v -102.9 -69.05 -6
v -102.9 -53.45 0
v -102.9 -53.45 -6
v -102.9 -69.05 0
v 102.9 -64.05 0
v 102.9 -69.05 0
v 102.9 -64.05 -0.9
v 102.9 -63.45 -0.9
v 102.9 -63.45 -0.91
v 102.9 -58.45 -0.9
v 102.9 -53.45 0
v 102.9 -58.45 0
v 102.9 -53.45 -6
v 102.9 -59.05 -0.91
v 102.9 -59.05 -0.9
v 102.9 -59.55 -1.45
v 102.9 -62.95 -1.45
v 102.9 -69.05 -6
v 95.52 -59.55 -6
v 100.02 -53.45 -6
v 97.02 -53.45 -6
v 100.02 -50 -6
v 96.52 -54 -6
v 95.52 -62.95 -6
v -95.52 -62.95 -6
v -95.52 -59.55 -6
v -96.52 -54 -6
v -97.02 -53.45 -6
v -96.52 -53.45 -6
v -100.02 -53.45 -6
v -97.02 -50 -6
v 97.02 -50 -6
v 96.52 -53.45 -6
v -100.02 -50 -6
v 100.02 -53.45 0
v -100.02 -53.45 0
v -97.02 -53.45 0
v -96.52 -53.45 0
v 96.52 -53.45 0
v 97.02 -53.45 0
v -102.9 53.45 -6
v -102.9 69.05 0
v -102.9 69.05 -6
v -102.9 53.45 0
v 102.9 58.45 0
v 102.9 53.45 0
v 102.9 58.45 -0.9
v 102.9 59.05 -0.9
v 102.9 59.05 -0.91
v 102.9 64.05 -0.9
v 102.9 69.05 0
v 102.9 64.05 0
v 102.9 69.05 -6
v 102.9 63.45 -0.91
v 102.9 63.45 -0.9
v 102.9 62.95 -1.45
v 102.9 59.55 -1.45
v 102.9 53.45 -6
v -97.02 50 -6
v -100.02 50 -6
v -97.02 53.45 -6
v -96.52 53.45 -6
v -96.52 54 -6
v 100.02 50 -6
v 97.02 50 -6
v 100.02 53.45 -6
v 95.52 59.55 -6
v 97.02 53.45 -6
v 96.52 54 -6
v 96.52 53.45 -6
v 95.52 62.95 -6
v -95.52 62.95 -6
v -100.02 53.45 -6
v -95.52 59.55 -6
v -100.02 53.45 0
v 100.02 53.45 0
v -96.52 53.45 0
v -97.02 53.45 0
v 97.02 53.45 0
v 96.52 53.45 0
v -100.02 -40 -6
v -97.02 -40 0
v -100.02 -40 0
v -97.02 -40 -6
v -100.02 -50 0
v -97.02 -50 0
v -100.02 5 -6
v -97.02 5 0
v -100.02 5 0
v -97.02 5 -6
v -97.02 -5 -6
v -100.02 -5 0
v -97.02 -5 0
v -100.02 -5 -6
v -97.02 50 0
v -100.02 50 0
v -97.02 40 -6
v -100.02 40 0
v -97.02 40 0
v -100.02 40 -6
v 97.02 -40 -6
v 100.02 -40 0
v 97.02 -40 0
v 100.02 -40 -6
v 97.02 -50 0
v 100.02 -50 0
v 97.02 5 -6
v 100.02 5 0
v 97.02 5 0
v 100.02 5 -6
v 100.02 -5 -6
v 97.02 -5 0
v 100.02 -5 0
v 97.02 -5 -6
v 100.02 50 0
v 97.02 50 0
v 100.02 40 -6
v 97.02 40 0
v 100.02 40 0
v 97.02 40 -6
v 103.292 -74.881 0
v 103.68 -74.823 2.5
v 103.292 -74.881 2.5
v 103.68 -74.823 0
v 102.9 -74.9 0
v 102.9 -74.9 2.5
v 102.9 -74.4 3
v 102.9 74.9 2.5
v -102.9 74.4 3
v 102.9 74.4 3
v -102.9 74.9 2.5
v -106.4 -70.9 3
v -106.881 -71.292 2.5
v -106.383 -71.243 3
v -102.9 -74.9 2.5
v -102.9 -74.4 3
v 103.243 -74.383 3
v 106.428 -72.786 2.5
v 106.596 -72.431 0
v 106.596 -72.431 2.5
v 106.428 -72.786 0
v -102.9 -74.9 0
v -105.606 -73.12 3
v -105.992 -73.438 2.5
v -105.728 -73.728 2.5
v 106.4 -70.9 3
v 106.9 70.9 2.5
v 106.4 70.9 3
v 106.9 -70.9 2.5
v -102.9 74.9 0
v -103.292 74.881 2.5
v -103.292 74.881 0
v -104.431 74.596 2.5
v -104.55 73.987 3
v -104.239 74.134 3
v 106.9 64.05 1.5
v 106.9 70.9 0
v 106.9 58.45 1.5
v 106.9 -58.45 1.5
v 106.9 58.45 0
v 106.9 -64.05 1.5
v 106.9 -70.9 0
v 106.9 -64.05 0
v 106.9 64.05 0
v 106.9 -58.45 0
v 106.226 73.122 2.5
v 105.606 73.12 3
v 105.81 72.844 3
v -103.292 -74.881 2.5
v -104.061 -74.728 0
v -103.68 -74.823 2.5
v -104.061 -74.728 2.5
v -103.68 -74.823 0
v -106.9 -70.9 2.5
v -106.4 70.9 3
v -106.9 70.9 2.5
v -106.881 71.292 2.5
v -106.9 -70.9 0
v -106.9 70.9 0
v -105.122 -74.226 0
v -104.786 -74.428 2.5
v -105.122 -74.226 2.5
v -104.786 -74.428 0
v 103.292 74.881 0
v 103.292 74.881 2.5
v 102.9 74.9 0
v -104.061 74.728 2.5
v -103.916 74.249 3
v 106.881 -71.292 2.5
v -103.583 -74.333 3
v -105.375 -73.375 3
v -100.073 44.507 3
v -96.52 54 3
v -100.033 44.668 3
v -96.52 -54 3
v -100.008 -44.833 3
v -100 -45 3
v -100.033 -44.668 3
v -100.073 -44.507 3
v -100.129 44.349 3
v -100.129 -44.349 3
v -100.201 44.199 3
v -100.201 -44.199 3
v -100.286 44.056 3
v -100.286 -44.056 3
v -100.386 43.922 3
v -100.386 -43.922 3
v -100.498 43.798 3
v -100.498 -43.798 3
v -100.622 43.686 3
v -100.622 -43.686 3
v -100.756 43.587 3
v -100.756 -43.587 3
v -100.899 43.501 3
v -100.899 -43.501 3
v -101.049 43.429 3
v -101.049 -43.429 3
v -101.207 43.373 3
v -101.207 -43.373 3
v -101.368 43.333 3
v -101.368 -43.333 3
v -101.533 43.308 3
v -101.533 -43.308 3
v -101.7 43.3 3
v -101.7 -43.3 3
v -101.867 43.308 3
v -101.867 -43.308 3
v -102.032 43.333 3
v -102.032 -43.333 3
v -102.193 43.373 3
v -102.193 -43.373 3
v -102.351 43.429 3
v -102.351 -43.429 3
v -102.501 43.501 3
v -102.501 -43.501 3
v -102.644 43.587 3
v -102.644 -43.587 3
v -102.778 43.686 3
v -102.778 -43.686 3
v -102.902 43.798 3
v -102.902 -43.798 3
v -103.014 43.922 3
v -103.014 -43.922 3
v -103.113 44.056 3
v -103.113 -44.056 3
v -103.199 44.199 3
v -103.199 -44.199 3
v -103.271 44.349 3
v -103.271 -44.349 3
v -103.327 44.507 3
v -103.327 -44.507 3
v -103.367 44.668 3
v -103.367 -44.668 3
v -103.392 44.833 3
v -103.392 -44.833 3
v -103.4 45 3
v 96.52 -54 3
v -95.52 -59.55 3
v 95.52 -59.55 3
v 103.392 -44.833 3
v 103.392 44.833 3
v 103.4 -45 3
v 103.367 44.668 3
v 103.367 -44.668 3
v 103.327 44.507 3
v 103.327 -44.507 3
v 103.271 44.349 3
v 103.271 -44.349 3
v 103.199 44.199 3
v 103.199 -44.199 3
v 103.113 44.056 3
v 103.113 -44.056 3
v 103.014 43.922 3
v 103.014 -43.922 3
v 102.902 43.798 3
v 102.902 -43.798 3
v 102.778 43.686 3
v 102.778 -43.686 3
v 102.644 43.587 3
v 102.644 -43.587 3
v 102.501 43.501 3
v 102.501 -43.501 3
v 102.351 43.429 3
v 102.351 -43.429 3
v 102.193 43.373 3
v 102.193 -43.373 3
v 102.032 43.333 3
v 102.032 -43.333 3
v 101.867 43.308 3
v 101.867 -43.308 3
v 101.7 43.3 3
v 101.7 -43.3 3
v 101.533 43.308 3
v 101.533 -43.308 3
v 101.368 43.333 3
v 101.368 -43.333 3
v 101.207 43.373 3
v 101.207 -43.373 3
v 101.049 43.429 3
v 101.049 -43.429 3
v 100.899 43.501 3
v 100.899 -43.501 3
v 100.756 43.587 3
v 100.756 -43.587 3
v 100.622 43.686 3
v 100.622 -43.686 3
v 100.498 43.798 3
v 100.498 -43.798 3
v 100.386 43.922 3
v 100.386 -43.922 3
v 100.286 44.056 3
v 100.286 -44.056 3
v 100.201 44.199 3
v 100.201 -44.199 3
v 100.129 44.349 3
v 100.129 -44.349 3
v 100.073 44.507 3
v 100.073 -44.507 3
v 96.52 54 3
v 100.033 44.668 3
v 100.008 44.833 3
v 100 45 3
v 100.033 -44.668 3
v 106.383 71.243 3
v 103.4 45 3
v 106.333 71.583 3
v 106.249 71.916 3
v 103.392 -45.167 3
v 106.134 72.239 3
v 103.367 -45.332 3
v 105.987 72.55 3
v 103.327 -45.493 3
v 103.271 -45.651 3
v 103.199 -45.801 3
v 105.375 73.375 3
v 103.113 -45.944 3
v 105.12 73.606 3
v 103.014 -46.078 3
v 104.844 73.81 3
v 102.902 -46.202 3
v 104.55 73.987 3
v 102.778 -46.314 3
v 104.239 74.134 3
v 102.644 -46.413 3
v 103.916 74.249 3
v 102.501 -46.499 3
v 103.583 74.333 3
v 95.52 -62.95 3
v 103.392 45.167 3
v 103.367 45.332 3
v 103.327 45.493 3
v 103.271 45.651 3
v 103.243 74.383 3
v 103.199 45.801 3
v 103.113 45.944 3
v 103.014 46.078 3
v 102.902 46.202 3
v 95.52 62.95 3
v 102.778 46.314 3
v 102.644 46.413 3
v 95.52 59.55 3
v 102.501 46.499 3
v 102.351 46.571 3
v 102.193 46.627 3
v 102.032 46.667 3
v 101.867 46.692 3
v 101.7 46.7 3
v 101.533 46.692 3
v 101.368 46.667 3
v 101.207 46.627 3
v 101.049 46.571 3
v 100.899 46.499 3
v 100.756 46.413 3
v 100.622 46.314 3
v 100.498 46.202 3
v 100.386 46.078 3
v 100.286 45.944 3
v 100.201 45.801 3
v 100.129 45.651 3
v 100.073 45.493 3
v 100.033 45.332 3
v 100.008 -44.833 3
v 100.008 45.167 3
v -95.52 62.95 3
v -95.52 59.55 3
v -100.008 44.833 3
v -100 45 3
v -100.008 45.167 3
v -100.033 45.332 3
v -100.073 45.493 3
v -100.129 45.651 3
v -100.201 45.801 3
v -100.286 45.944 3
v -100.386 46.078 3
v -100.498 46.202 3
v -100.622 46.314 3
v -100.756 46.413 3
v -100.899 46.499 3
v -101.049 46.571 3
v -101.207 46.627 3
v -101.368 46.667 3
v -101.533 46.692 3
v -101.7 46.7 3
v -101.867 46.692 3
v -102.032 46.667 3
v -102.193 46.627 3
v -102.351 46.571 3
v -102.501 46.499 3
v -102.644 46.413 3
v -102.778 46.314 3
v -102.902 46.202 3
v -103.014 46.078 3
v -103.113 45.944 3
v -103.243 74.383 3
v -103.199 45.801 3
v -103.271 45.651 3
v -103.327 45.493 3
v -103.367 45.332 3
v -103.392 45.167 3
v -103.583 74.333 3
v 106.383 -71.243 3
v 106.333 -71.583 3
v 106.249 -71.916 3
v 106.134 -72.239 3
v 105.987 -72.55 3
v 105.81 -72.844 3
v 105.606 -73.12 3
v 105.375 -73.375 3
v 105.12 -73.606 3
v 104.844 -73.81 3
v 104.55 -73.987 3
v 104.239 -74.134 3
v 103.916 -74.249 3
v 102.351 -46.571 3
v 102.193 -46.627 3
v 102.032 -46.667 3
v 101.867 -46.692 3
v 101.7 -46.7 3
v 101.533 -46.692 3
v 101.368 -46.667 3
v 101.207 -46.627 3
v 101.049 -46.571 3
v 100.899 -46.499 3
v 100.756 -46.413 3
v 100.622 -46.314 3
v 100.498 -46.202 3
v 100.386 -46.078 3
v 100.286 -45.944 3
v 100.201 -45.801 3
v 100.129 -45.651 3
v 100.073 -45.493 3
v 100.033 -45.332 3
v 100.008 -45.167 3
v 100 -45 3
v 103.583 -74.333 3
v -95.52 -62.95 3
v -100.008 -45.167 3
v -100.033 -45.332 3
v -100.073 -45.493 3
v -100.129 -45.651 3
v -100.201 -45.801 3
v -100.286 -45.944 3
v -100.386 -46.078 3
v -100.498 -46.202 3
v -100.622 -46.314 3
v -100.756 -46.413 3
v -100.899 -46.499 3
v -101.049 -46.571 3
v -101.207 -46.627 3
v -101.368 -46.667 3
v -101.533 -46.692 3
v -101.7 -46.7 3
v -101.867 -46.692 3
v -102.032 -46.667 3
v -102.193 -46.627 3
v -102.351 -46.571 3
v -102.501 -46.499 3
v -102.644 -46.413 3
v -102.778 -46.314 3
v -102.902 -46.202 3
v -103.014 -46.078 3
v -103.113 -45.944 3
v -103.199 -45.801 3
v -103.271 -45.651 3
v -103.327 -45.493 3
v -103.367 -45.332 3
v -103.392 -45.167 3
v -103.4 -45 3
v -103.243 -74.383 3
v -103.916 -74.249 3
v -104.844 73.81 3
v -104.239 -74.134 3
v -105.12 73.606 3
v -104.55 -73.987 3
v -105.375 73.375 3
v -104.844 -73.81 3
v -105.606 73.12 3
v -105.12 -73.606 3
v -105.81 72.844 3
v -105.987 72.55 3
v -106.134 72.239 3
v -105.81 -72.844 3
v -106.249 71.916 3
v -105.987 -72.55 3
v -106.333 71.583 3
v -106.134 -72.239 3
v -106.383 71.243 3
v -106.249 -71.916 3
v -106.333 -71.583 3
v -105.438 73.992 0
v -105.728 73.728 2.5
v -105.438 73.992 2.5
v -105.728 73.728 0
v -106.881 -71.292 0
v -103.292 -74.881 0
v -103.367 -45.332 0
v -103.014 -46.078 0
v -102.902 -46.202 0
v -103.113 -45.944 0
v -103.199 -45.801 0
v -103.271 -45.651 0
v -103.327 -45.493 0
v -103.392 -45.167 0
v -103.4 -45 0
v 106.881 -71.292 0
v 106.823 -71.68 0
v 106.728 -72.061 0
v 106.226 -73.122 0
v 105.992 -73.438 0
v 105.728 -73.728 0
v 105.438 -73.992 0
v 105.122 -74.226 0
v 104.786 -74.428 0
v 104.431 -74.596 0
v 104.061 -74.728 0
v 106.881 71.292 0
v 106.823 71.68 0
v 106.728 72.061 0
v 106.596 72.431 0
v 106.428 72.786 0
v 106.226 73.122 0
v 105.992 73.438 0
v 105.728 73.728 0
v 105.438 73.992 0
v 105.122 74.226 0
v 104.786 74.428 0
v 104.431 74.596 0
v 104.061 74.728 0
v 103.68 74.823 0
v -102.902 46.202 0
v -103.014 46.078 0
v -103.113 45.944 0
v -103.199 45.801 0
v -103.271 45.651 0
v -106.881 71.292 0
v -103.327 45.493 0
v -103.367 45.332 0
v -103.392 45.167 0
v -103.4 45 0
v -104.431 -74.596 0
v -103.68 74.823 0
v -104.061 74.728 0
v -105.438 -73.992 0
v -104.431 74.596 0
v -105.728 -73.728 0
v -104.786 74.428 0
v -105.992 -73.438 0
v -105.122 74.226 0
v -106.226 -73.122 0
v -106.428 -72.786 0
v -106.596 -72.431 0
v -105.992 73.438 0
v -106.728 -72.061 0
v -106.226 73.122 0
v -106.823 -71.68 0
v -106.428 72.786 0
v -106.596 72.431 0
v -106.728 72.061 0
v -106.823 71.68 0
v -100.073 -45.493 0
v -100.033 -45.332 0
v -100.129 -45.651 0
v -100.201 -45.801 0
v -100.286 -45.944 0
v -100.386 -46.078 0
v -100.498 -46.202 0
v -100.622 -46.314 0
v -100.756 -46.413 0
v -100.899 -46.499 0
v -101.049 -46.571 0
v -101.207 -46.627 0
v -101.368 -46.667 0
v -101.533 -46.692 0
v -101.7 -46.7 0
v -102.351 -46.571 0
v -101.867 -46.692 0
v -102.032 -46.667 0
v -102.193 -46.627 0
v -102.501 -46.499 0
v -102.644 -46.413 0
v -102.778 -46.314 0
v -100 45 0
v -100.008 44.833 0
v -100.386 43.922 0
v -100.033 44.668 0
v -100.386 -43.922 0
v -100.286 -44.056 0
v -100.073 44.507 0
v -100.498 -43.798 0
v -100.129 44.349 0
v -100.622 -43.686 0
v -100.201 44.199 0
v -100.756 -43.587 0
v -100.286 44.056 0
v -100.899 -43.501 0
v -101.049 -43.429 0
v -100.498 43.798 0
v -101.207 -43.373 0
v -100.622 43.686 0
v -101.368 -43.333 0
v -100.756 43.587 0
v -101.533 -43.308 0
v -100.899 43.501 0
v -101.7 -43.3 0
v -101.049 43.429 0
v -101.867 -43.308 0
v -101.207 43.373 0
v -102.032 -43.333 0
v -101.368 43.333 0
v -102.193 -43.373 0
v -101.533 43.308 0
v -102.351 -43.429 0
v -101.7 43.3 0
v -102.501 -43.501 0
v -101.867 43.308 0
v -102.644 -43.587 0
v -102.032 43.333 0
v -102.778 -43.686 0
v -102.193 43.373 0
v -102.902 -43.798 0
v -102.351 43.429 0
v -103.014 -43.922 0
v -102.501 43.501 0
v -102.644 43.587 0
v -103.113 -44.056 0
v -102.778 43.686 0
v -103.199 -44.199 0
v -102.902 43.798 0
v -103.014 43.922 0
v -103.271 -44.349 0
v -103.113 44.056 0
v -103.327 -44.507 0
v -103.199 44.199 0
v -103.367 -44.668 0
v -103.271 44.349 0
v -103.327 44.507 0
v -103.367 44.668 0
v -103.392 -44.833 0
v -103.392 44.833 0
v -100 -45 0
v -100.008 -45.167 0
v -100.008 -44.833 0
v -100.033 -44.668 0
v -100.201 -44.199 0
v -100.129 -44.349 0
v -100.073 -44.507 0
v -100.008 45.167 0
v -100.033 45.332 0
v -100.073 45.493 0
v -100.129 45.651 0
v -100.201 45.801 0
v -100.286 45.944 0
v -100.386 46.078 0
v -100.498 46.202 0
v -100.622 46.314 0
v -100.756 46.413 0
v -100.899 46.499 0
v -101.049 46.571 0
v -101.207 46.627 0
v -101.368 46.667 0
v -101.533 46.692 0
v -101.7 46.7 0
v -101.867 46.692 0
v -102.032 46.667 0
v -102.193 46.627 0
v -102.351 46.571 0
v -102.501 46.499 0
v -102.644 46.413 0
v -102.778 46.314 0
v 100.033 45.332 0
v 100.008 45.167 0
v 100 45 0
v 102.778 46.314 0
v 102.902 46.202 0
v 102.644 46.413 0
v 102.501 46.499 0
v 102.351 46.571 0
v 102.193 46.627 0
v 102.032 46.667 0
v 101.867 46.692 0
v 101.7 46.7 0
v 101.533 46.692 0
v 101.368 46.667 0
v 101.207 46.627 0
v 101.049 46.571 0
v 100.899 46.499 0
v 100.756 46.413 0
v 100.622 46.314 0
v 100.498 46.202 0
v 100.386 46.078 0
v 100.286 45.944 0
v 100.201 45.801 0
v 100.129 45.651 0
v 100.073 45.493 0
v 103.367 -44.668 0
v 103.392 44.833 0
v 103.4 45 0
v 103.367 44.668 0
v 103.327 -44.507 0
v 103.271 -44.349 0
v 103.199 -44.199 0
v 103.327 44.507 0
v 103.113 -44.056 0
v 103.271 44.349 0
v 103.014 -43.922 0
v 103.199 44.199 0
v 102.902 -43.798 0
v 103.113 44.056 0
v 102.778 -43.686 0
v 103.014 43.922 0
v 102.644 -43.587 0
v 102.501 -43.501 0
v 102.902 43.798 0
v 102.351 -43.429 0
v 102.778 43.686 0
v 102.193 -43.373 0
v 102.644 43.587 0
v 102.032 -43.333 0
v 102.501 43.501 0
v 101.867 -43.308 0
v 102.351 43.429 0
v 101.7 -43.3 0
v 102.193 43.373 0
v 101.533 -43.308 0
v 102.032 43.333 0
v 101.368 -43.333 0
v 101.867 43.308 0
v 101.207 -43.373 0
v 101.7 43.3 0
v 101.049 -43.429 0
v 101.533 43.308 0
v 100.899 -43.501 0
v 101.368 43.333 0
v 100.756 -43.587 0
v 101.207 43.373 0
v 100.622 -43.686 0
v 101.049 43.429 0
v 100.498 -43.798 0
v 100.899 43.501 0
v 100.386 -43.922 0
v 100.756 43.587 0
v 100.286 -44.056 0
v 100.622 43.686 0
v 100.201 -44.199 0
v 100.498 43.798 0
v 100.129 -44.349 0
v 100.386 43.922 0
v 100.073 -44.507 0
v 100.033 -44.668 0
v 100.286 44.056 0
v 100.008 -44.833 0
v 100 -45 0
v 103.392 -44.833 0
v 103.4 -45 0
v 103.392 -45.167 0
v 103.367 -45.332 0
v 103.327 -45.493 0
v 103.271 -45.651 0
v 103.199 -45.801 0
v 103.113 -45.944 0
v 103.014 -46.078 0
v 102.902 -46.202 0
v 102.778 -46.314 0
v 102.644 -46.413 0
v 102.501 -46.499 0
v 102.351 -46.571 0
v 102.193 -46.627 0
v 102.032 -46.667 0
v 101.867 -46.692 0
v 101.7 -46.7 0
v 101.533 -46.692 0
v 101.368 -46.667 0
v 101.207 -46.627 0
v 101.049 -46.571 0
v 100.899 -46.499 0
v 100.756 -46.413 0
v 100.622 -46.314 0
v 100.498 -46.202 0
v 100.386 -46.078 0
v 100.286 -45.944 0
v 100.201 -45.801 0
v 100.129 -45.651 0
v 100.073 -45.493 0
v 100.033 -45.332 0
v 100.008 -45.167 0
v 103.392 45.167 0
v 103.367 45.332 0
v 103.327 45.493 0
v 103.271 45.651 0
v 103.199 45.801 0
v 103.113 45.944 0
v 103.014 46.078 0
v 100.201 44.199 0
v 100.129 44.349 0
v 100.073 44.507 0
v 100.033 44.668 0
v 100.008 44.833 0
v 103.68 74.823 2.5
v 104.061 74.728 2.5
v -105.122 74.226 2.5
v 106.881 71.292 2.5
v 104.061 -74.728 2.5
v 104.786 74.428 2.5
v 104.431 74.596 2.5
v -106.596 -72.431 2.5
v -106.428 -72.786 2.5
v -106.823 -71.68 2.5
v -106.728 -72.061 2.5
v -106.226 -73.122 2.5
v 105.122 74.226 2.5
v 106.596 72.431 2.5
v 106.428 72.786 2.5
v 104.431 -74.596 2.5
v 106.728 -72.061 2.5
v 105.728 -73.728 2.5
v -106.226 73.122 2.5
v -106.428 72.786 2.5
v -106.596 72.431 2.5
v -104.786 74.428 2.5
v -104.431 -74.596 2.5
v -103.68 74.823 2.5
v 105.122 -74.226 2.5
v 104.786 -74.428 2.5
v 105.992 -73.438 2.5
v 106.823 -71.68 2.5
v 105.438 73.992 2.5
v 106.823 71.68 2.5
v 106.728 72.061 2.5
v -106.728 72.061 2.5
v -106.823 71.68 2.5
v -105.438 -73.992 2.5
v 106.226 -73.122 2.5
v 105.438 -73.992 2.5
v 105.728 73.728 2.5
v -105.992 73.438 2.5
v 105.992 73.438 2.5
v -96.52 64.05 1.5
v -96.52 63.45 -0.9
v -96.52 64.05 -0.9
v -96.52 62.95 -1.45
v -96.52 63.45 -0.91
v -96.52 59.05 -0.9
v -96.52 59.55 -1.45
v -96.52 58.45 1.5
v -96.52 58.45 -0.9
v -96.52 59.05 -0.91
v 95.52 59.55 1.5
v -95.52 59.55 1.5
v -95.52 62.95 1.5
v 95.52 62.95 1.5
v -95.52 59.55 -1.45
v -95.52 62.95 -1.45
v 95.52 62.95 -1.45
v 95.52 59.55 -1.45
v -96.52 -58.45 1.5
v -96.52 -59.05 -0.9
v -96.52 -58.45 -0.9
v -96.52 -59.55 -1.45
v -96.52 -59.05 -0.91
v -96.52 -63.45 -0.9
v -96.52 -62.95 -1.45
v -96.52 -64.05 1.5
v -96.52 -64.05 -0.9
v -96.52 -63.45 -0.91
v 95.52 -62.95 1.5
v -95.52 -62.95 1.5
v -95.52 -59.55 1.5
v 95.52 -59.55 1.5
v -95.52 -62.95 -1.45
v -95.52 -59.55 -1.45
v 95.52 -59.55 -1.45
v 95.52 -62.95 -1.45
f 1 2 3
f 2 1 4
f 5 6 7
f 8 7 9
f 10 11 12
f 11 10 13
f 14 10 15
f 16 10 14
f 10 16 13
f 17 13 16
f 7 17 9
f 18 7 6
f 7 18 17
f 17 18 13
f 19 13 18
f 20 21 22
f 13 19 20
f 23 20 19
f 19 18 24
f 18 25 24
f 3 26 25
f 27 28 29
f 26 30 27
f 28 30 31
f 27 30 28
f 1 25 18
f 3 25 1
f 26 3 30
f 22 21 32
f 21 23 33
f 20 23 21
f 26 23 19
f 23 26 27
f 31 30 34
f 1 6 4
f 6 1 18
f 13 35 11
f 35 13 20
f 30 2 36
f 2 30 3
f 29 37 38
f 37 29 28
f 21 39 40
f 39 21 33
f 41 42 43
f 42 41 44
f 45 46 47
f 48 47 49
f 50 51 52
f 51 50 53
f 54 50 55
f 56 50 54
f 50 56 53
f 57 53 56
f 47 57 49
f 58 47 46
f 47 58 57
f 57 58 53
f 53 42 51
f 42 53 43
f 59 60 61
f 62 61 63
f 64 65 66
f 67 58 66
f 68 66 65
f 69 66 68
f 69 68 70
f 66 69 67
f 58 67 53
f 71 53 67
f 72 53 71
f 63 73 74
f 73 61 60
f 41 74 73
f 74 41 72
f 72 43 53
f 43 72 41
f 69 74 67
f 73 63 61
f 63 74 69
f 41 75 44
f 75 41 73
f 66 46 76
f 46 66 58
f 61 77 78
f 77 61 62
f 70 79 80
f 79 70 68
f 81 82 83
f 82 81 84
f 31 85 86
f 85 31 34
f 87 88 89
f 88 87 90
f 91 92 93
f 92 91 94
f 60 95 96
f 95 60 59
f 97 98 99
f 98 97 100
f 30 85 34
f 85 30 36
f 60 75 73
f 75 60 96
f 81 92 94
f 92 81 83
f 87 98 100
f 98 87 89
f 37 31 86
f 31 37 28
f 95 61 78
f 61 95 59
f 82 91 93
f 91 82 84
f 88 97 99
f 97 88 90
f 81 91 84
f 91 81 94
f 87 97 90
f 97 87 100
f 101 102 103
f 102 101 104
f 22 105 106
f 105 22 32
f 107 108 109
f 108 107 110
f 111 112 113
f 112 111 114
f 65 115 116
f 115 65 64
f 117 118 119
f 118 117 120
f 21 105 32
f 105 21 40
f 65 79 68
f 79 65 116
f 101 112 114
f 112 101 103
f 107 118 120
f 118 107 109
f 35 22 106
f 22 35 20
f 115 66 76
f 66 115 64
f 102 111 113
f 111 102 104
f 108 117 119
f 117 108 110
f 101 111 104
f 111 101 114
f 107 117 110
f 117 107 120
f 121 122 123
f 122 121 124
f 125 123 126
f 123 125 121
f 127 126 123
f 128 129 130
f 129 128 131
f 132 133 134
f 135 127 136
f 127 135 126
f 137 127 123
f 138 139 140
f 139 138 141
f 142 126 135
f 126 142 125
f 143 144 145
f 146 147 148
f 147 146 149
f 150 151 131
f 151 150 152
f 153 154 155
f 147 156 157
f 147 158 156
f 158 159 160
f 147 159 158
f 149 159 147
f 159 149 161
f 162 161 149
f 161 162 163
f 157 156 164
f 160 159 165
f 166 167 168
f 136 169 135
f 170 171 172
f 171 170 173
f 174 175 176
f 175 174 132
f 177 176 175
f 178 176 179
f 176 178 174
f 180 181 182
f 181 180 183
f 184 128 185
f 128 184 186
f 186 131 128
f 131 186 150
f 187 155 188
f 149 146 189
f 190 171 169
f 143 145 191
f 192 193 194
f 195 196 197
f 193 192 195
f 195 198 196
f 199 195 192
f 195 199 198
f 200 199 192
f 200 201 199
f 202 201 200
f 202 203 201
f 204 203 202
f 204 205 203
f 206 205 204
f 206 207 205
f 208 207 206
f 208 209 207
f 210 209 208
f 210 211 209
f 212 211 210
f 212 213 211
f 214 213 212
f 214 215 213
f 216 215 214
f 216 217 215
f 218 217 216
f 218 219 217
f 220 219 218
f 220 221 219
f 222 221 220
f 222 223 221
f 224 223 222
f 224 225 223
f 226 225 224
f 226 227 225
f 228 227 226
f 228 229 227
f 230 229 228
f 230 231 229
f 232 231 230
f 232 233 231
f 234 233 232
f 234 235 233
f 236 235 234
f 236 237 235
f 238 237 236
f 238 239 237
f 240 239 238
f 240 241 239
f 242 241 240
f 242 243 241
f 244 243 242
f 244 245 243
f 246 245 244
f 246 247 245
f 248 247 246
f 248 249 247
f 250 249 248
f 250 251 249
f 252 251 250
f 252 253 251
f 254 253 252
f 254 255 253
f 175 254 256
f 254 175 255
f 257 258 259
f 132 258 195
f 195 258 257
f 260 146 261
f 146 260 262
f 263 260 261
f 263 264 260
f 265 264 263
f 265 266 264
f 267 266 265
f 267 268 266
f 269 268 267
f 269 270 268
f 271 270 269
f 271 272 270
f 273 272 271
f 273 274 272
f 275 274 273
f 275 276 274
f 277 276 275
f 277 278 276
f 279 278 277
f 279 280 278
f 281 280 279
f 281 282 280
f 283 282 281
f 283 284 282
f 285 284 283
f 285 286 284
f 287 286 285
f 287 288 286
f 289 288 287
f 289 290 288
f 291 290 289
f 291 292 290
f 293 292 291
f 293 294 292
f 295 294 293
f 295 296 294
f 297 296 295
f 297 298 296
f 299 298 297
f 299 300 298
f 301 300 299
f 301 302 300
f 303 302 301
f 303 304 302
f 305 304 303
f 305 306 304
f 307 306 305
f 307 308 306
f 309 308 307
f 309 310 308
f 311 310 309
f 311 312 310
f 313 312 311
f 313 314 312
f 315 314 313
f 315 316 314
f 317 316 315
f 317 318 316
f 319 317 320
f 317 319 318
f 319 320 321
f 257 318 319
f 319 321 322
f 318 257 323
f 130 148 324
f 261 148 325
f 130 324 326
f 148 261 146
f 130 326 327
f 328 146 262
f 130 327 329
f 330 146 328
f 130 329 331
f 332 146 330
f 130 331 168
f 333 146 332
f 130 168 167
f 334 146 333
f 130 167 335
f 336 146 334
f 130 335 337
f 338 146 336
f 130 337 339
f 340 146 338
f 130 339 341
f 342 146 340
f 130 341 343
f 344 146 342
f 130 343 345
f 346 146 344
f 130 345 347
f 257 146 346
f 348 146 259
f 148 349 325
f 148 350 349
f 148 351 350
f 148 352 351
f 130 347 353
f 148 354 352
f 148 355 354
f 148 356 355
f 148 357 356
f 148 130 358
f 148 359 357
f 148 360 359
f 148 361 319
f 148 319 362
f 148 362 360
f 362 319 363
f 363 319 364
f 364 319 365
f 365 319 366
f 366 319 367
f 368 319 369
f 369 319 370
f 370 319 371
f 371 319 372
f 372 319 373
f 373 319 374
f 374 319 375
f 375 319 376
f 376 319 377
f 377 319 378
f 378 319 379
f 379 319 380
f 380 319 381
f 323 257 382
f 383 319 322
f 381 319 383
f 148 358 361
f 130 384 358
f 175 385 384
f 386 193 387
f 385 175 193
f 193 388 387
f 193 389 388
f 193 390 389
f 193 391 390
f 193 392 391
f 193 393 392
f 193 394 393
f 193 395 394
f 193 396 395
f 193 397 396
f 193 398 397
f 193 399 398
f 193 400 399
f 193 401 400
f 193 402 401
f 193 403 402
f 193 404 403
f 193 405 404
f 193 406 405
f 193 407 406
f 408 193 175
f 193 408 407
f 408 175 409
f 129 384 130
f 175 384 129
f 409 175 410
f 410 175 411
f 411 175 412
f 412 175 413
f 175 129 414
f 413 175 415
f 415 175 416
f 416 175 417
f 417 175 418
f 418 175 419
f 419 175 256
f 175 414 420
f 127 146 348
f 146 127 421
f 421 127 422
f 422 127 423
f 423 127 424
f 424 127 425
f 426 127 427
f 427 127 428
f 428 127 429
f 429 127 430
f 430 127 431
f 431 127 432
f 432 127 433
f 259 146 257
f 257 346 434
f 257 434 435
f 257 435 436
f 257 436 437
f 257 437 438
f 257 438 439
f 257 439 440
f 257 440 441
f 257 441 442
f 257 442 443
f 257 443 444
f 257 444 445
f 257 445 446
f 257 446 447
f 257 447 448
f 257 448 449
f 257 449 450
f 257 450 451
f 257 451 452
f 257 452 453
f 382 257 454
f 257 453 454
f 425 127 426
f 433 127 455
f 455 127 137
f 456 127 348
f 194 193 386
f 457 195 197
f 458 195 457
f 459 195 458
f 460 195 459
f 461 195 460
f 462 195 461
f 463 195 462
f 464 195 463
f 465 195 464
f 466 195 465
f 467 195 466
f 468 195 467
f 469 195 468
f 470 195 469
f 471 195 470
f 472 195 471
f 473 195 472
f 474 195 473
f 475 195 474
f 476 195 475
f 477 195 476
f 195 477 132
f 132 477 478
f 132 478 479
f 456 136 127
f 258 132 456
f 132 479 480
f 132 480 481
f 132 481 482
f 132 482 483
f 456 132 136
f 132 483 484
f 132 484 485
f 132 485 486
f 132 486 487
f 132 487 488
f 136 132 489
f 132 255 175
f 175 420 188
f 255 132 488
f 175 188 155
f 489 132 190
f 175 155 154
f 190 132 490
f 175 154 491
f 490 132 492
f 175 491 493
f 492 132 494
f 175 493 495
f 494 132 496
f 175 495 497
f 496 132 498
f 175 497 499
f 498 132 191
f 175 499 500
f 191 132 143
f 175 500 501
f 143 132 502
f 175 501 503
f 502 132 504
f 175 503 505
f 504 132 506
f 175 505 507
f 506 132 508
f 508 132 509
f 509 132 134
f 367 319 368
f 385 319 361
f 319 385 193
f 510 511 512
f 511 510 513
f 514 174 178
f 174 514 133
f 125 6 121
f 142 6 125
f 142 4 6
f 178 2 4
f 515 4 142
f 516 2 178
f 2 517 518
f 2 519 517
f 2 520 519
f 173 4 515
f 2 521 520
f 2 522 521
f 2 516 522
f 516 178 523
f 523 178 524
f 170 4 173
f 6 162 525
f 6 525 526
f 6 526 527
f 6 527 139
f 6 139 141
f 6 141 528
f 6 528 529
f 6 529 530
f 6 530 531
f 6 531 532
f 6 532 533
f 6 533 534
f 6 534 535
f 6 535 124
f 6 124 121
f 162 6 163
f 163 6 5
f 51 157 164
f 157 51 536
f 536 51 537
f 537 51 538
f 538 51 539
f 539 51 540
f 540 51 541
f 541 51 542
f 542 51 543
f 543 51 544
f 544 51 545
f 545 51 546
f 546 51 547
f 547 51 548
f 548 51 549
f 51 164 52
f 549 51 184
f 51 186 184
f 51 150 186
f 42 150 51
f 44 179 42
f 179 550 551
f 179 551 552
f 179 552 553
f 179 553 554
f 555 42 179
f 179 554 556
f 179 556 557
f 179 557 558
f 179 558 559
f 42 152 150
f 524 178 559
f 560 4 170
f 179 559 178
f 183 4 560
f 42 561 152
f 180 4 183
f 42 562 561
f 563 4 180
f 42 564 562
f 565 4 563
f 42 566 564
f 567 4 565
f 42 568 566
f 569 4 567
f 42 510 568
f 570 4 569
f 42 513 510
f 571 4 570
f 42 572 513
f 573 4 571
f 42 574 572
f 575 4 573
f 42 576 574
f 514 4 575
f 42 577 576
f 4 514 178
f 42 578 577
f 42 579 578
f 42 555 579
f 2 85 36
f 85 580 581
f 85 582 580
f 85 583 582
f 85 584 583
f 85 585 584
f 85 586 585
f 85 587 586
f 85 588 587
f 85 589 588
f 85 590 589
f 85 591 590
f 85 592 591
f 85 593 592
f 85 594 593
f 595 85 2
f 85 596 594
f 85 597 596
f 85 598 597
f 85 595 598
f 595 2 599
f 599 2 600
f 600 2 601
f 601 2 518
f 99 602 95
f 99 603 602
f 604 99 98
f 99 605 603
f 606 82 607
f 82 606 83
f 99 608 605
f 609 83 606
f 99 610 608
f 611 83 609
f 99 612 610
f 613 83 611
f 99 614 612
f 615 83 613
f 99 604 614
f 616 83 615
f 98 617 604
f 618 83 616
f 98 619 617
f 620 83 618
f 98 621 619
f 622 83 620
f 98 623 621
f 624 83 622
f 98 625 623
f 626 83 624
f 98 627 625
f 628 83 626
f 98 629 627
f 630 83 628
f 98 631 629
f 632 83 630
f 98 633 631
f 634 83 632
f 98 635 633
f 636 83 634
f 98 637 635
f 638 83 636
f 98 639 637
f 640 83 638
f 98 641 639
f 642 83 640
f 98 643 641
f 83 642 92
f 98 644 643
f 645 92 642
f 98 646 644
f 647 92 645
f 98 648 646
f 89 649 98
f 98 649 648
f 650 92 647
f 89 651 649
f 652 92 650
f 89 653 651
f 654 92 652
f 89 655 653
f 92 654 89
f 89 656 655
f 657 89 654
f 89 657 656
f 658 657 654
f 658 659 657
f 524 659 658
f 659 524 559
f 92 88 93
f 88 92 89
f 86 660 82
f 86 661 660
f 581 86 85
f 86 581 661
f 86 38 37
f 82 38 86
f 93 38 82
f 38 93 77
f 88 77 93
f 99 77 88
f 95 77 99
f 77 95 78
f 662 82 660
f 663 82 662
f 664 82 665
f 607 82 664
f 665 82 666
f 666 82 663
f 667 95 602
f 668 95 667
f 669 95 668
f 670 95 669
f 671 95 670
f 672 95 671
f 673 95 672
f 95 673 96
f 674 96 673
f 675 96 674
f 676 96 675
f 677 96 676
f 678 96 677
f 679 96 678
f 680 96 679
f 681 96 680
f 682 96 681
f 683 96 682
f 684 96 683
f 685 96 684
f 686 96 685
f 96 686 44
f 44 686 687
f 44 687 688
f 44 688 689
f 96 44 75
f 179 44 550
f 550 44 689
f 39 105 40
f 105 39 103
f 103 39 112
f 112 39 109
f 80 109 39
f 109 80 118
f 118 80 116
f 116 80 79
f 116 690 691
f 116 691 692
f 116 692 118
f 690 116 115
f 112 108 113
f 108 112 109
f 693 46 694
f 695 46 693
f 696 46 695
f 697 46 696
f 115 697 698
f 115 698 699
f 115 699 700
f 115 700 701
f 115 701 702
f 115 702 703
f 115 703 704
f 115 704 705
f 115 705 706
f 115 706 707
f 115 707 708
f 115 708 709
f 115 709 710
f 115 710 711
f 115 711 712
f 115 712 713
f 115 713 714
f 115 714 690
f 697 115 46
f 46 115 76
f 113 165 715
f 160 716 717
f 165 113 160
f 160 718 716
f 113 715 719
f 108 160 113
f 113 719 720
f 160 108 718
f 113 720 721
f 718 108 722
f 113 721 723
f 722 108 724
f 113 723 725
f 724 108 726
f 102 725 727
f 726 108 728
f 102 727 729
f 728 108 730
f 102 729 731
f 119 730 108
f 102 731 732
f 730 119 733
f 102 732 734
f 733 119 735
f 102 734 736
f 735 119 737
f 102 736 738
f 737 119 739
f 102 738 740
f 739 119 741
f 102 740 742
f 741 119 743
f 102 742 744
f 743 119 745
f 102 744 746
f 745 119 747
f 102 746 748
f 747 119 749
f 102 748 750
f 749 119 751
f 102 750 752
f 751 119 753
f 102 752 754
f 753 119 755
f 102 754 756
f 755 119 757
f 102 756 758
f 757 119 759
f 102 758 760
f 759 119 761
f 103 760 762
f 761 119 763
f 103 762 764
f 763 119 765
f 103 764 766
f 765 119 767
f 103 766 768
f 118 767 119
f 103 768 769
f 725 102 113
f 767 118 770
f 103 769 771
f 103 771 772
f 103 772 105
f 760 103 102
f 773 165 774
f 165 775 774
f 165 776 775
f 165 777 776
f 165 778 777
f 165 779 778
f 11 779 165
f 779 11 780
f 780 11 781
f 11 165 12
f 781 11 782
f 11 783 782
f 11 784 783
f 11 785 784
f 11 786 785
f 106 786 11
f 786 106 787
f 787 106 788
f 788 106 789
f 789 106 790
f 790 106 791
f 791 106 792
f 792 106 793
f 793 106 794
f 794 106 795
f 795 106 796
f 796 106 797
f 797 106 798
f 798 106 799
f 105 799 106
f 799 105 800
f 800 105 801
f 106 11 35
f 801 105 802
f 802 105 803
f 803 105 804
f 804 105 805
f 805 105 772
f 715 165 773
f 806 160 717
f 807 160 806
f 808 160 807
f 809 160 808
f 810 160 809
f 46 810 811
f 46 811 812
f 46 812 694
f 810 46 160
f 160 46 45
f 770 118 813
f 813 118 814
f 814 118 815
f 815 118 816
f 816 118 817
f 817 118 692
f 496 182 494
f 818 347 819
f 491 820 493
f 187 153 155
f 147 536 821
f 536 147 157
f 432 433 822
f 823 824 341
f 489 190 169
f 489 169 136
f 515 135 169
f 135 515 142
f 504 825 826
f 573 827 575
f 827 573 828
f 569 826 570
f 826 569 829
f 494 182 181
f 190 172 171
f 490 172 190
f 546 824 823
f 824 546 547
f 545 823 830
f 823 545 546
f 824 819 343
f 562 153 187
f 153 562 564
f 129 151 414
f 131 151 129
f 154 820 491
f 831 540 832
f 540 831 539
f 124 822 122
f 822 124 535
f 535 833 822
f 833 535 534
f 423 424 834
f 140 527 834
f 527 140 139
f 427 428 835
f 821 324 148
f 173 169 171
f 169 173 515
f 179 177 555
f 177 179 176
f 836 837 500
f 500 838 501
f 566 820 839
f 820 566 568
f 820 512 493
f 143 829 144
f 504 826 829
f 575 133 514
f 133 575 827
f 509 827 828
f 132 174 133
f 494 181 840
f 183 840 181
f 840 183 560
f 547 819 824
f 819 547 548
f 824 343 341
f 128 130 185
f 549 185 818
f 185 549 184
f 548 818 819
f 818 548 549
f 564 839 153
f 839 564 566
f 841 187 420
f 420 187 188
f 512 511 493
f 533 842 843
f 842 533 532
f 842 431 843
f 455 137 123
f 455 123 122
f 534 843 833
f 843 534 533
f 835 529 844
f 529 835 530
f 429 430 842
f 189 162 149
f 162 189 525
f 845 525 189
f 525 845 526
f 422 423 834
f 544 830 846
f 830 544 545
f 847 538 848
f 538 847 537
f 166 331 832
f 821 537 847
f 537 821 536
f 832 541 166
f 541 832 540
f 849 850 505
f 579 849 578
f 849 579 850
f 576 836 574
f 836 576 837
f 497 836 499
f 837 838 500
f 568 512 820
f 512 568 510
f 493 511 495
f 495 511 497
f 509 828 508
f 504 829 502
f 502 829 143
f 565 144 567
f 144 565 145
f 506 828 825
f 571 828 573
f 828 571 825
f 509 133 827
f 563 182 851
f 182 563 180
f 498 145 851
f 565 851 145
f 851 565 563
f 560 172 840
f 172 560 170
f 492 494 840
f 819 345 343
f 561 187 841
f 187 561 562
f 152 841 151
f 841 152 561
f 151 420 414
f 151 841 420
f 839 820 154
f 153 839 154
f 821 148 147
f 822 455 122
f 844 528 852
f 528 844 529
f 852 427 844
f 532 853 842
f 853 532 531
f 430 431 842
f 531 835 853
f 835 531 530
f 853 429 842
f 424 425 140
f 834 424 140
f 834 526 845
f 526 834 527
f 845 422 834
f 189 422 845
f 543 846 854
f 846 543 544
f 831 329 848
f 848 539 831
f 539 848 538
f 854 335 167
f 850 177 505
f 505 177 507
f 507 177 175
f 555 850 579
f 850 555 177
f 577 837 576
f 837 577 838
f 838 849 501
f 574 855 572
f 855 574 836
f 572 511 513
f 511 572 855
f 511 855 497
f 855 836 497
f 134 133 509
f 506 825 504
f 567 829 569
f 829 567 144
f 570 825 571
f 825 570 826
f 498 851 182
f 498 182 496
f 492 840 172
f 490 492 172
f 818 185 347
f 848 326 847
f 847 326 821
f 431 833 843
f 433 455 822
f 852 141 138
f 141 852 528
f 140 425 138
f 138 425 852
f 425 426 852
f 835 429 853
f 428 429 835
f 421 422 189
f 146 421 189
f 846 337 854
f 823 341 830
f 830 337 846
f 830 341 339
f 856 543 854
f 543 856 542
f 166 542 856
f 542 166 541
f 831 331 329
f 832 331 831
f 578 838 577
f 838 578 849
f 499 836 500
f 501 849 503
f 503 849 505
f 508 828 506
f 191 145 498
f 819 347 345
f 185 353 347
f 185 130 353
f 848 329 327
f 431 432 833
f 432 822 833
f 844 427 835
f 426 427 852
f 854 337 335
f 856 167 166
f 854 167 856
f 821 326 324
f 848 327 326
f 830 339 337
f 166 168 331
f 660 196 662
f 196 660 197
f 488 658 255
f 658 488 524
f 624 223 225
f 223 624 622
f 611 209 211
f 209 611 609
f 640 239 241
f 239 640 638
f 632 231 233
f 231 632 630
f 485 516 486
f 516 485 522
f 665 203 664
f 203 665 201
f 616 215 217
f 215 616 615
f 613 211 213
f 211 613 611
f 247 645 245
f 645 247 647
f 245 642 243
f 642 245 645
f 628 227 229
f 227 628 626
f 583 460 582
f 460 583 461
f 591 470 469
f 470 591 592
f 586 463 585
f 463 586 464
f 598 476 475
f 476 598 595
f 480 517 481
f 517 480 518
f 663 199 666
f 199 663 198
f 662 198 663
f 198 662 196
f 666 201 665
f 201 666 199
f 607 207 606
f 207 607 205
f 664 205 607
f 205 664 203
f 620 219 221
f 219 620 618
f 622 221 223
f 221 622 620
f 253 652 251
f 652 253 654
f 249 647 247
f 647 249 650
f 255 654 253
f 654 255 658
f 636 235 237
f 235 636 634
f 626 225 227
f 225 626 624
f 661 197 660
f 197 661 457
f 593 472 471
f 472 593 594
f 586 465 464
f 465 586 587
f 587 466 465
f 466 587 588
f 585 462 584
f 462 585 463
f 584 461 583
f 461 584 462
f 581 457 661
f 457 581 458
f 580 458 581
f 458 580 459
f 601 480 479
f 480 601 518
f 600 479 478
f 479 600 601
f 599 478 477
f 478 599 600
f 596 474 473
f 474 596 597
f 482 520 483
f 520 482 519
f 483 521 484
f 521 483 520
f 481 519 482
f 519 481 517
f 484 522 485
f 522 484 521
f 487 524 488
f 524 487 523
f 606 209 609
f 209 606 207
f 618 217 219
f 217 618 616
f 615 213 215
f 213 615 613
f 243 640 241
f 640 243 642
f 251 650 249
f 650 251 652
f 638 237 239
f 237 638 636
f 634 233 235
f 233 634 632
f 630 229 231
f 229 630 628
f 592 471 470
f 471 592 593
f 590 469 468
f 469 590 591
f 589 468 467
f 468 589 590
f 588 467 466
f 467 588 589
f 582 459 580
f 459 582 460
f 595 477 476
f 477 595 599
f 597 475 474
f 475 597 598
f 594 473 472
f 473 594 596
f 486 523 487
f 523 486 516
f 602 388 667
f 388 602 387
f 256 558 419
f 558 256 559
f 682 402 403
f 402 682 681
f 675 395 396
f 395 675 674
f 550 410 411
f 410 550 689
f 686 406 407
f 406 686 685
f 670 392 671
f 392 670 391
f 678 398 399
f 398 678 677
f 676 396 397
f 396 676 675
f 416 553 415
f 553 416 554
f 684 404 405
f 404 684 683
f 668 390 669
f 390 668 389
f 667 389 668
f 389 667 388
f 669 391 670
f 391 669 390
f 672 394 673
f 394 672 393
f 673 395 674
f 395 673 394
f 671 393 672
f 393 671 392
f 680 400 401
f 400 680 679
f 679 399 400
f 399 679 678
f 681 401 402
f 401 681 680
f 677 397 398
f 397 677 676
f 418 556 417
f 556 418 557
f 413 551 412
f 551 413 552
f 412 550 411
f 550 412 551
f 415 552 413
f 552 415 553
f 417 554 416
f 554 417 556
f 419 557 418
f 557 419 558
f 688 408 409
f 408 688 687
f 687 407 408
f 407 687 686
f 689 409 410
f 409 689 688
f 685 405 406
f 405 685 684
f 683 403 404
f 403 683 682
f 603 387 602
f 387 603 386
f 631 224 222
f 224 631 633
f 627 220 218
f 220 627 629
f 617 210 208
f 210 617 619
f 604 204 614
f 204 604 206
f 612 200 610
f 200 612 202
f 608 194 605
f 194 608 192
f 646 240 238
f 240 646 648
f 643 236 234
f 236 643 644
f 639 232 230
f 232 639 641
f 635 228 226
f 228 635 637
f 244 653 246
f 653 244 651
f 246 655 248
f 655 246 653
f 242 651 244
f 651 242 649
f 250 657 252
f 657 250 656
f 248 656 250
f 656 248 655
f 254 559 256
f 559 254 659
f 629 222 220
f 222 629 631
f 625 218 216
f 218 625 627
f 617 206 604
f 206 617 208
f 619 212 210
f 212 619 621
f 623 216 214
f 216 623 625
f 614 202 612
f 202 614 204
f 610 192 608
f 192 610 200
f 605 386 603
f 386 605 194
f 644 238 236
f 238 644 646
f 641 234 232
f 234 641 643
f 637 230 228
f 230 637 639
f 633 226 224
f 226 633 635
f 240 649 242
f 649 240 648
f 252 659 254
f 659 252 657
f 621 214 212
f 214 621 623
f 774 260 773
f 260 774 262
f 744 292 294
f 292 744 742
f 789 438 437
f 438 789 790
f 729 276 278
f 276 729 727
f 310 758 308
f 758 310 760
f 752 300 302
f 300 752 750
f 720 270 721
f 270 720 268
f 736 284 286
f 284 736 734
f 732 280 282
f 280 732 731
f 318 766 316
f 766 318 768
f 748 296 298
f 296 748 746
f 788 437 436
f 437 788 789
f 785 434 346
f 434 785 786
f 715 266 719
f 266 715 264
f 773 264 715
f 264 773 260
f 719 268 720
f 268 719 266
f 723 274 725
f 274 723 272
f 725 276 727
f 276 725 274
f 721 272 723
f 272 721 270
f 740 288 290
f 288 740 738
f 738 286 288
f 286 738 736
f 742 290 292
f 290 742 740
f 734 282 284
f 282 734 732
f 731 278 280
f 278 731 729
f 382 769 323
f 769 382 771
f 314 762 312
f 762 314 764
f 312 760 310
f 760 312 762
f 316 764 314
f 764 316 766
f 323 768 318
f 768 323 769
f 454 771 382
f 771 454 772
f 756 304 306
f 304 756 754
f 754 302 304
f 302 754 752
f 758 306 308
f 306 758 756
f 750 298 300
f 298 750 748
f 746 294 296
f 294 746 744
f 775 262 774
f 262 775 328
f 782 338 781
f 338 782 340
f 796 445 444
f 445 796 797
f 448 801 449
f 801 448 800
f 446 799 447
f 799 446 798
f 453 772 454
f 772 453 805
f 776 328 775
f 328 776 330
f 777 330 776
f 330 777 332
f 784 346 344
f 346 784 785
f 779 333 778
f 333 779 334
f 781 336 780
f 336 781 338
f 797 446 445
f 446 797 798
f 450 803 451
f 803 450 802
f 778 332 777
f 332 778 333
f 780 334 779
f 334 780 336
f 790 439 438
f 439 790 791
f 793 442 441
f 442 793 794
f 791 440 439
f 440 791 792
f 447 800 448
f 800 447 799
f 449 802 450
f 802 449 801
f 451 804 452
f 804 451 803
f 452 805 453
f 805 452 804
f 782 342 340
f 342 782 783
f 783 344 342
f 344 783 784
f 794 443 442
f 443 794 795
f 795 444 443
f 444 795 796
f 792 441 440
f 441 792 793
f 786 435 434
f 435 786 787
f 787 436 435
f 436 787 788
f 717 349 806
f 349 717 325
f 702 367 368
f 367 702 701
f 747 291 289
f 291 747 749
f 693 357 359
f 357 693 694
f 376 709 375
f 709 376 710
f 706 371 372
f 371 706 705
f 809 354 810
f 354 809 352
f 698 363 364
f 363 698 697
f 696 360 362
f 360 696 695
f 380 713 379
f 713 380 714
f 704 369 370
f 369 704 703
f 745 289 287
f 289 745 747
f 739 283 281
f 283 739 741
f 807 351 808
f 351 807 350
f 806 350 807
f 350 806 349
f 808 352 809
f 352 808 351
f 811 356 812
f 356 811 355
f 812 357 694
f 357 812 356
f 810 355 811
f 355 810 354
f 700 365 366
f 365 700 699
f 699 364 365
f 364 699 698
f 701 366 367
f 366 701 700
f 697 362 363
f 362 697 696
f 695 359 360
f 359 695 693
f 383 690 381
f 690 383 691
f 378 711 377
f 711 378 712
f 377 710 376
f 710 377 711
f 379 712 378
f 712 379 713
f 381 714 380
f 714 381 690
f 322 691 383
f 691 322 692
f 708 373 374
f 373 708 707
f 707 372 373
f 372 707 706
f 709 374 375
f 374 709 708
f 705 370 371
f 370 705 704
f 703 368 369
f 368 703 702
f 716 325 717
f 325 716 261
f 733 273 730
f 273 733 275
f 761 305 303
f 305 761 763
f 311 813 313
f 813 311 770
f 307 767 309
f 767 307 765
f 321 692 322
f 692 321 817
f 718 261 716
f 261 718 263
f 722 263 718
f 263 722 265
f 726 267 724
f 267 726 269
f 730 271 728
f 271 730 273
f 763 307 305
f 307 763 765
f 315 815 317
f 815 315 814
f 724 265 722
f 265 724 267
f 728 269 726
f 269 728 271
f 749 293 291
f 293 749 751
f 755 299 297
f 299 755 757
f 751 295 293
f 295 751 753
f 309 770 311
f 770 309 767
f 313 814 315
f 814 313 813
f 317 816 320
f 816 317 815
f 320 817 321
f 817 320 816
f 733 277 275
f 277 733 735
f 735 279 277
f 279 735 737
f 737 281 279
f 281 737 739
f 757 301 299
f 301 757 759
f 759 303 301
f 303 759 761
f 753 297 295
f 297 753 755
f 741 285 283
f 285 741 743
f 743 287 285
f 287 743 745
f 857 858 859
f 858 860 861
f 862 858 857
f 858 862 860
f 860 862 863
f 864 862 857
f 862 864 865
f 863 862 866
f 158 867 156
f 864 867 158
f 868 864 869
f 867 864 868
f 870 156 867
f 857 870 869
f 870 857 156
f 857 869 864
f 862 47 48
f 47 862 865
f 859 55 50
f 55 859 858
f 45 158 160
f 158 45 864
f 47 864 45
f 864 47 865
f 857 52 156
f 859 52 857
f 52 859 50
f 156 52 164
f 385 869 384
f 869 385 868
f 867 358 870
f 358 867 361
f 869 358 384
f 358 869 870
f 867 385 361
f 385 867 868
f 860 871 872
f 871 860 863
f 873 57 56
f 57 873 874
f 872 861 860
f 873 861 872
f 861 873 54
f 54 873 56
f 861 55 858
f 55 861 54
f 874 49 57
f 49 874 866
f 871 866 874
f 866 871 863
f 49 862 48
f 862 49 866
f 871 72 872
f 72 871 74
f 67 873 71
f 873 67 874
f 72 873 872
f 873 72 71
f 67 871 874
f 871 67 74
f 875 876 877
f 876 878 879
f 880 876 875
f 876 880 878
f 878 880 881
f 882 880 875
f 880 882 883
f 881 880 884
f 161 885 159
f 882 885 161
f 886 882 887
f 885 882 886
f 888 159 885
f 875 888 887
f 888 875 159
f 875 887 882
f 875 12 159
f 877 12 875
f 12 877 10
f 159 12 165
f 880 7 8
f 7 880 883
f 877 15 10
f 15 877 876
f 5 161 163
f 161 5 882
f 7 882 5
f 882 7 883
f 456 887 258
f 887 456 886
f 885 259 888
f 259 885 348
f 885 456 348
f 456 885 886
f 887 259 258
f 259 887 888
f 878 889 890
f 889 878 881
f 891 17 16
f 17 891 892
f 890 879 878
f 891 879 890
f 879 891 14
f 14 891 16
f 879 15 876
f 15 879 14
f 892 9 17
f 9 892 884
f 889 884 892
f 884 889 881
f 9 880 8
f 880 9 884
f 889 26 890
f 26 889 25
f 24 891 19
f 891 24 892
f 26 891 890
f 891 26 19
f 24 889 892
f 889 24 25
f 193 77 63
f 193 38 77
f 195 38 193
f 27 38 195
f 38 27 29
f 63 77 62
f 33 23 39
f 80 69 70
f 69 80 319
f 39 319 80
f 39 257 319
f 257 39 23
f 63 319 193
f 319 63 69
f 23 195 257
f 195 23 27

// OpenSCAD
// Apache 2800 Eurorack Plate
// Copyright (c) 2026 William Chrapcynski
// Licensed under CC BY-NC-SA 4.0
// https://creativecommons.org/licenses/by-nc-sa/4.0/

/* [Plate] */
// Plate length (X)
plate_length = 213.8;
// Plate width (Y)
plate_width = 149.8;
// Plate thickness
plate_thickness = 3;
// Corner radius
plate_corner_radius = 4;
// Plate Chamfer
plate_chamfer = 0.5;

/* [Screws - This is position for first screw at the top right] */
// Screw Position (X)
screw_position_x = 101.7;
// Screw Position (Y)
screw_position_y = 45;
// Screw Hole Diameter
screw_hole_diameter = 3.4;
// Enable Countersink
enable_countersink = false;
// Countersink Diameter
countersink_diameter = 6.2;
// Countersink Depth
countersink_depth = (countersink_diameter - screw_hole_diameter) / 2;

/* [Hidden] */
// Standard width of 1 HP
hp = 5.08;
/* [Eurorack] */
// Row Width In HP
row_hp = 38;
// Opening Height (Y) 
opening_height = 108;

/* [Ribs] */
// Rib Depth - Below the plate
rib_depth = 6;
// Rail Spacing - Standard 3U distance
rail_spacing = 122.5;
// Long Rib Width (Y)
long_rib_width = 15.6;
// End Rib Thickness (X)
end_rib_thickness = 3;
// Gap between ribs and opening
end_rib_gap = 0.5;
// Bracket Post Width - Must match the bracket file
post_width = 9;
// Clearance around each bracket
post_clearance = 0.5;

/* [Strip Channels] */
// Strip Width
strip_width = 5;
// Strip Thickness
strip_thickness = 2;
// Strip Play Width
strip_play_width = 0.6;
// Strip Play Thickness
strip_play_thickness = 0.4;
// Cover Thickness
cover_thickness = 1.5;
// Screw Slot (M3 Clearance)
slot_width = 3.4;
// Flat Lip - Each side that holds the strip
ledge_width = 0.6;
// Depth of the sloped roof under the strip
taper_depth = 0.55;

/* [Misc] */
// Rounding segments - For calculating purposes only
$fn = 64;

// Create Plate
difference() {
    union() {
        hull() {
            linear_extrude(height = plate_thickness - plate_chamfer) 
                offset(r = plate_corner_radius) 
                    square([plate_length - (plate_corner_radius * 2), plate_width - (plate_corner_radius * 2)], center = true);
            linear_extrude(height = plate_thickness) 
                offset(r = plate_corner_radius - plate_chamfer) 
                    square([plate_length - (plate_corner_radius * 2), plate_width - (plate_corner_radius * 2)], center = true);
        }
        // Long Rib
        for(sy = [-1, 1])
            translate([-(plate_length / 2 - plate_corner_radius), sy * rail_spacing / 2 - long_rib_width / 2, -rib_depth])
                cube([plate_length - 2 * plate_corner_radius, long_rib_width, rib_depth + 1]);
        // End Rib
        for(sx = [-1, 1])
            translate([sx * (row_hp * hp  / 2 + end_rib_gap + end_rib_thickness / 2), 0, -rib_depth / 2 + 0.5])
                difference(){
                    cube([end_rib_thickness, rail_spacing - long_rib_width + 1, rib_depth + 1], center = true);
                    for(y = [-screw_position_y, 0, screw_position_y])
                        translate([0, y, 0])
                            cube([end_rib_thickness + 2, post_width + 2 * post_clearance, rib_depth + 3], center = true);
                }
                
    }
    // Screw Holes
    for(sx = [-1, 1], sy = [-1, 1]) 
        translate([screw_position_x * sx, screw_position_y * sy, 0]) {
            translate([0, 0, -1]) 
                cylinder(d = screw_hole_diameter, h = plate_thickness + 2);
            if(enable_countersink) 
                translate([0, 0, plate_thickness - countersink_depth]) 
                    cylinder(h = countersink_depth + 1, d1 = screw_hole_diameter, d2 = countersink_diameter + 2);
        }
    // Main Cutout
    translate([(-row_hp * hp) / 2, -opening_height / 2, -rib_depth - 1])
        cube([row_hp * hp, opening_height, plate_thickness + rib_depth + 2]);
    
    // Strip Cutout
    for (sy = [1, -1]) {
        translate([(-row_hp * hp)  / 2, (sy * rail_spacing) / 2 - (strip_width + strip_play_width) / 2, plate_thickness - cover_thickness - (strip_thickness + strip_play_thickness)])
            cube([(row_hp * hp) / 2 + (plate_length / 2) + 1, strip_width + strip_play_width, strip_thickness + strip_play_thickness]);
        // Screw Cutout - opening for screws
        translate([(-row_hp * hp) / 2 + 1, (sy * rail_spacing) / 2 - slot_width / 2, plate_thickness - cover_thickness - 1])
            cube([(row_hp * hp) - 2, slot_width, cover_thickness + 2]);
        // Sloped Roof
        hull() {
            translate([(-row_hp * hp) / 2, (sy * rail_spacing) / 2 - (strip_width + strip_play_width - 2 * ledge_width) / 2, plate_thickness - cover_thickness - (strip_thickness + strip_play_thickness) - 0.01])
                cube([(row_hp * hp) / 2 + plate_length / 2 + 1, strip_width + strip_play_width - 2 * ledge_width, 0.51]);
            translate([(-row_hp * hp) /2, (sy * rail_spacing) / 2 - slot_width / 2, plate_thickness - cover_thickness - (strip_thickness + strip_play_thickness) - taper_depth])
                cube([(row_hp * hp) / 2 + plate_length / 2 + 1, slot_width, 0.01]);
        }
        // Bottom Slot - Room for Screw Tips
        translate([(-row_hp * hp) / 2 + 1, (sy * rail_spacing) / 2 - slot_width / 2, -rib_depth - 1])
            cube([(row_hp * hp) - 2, slot_width, rib_depth + 1 + plate_thickness - cover_thickness - (strip_thickness + strip_play_thickness) -taper_depth + 0.5]);
    }
}
